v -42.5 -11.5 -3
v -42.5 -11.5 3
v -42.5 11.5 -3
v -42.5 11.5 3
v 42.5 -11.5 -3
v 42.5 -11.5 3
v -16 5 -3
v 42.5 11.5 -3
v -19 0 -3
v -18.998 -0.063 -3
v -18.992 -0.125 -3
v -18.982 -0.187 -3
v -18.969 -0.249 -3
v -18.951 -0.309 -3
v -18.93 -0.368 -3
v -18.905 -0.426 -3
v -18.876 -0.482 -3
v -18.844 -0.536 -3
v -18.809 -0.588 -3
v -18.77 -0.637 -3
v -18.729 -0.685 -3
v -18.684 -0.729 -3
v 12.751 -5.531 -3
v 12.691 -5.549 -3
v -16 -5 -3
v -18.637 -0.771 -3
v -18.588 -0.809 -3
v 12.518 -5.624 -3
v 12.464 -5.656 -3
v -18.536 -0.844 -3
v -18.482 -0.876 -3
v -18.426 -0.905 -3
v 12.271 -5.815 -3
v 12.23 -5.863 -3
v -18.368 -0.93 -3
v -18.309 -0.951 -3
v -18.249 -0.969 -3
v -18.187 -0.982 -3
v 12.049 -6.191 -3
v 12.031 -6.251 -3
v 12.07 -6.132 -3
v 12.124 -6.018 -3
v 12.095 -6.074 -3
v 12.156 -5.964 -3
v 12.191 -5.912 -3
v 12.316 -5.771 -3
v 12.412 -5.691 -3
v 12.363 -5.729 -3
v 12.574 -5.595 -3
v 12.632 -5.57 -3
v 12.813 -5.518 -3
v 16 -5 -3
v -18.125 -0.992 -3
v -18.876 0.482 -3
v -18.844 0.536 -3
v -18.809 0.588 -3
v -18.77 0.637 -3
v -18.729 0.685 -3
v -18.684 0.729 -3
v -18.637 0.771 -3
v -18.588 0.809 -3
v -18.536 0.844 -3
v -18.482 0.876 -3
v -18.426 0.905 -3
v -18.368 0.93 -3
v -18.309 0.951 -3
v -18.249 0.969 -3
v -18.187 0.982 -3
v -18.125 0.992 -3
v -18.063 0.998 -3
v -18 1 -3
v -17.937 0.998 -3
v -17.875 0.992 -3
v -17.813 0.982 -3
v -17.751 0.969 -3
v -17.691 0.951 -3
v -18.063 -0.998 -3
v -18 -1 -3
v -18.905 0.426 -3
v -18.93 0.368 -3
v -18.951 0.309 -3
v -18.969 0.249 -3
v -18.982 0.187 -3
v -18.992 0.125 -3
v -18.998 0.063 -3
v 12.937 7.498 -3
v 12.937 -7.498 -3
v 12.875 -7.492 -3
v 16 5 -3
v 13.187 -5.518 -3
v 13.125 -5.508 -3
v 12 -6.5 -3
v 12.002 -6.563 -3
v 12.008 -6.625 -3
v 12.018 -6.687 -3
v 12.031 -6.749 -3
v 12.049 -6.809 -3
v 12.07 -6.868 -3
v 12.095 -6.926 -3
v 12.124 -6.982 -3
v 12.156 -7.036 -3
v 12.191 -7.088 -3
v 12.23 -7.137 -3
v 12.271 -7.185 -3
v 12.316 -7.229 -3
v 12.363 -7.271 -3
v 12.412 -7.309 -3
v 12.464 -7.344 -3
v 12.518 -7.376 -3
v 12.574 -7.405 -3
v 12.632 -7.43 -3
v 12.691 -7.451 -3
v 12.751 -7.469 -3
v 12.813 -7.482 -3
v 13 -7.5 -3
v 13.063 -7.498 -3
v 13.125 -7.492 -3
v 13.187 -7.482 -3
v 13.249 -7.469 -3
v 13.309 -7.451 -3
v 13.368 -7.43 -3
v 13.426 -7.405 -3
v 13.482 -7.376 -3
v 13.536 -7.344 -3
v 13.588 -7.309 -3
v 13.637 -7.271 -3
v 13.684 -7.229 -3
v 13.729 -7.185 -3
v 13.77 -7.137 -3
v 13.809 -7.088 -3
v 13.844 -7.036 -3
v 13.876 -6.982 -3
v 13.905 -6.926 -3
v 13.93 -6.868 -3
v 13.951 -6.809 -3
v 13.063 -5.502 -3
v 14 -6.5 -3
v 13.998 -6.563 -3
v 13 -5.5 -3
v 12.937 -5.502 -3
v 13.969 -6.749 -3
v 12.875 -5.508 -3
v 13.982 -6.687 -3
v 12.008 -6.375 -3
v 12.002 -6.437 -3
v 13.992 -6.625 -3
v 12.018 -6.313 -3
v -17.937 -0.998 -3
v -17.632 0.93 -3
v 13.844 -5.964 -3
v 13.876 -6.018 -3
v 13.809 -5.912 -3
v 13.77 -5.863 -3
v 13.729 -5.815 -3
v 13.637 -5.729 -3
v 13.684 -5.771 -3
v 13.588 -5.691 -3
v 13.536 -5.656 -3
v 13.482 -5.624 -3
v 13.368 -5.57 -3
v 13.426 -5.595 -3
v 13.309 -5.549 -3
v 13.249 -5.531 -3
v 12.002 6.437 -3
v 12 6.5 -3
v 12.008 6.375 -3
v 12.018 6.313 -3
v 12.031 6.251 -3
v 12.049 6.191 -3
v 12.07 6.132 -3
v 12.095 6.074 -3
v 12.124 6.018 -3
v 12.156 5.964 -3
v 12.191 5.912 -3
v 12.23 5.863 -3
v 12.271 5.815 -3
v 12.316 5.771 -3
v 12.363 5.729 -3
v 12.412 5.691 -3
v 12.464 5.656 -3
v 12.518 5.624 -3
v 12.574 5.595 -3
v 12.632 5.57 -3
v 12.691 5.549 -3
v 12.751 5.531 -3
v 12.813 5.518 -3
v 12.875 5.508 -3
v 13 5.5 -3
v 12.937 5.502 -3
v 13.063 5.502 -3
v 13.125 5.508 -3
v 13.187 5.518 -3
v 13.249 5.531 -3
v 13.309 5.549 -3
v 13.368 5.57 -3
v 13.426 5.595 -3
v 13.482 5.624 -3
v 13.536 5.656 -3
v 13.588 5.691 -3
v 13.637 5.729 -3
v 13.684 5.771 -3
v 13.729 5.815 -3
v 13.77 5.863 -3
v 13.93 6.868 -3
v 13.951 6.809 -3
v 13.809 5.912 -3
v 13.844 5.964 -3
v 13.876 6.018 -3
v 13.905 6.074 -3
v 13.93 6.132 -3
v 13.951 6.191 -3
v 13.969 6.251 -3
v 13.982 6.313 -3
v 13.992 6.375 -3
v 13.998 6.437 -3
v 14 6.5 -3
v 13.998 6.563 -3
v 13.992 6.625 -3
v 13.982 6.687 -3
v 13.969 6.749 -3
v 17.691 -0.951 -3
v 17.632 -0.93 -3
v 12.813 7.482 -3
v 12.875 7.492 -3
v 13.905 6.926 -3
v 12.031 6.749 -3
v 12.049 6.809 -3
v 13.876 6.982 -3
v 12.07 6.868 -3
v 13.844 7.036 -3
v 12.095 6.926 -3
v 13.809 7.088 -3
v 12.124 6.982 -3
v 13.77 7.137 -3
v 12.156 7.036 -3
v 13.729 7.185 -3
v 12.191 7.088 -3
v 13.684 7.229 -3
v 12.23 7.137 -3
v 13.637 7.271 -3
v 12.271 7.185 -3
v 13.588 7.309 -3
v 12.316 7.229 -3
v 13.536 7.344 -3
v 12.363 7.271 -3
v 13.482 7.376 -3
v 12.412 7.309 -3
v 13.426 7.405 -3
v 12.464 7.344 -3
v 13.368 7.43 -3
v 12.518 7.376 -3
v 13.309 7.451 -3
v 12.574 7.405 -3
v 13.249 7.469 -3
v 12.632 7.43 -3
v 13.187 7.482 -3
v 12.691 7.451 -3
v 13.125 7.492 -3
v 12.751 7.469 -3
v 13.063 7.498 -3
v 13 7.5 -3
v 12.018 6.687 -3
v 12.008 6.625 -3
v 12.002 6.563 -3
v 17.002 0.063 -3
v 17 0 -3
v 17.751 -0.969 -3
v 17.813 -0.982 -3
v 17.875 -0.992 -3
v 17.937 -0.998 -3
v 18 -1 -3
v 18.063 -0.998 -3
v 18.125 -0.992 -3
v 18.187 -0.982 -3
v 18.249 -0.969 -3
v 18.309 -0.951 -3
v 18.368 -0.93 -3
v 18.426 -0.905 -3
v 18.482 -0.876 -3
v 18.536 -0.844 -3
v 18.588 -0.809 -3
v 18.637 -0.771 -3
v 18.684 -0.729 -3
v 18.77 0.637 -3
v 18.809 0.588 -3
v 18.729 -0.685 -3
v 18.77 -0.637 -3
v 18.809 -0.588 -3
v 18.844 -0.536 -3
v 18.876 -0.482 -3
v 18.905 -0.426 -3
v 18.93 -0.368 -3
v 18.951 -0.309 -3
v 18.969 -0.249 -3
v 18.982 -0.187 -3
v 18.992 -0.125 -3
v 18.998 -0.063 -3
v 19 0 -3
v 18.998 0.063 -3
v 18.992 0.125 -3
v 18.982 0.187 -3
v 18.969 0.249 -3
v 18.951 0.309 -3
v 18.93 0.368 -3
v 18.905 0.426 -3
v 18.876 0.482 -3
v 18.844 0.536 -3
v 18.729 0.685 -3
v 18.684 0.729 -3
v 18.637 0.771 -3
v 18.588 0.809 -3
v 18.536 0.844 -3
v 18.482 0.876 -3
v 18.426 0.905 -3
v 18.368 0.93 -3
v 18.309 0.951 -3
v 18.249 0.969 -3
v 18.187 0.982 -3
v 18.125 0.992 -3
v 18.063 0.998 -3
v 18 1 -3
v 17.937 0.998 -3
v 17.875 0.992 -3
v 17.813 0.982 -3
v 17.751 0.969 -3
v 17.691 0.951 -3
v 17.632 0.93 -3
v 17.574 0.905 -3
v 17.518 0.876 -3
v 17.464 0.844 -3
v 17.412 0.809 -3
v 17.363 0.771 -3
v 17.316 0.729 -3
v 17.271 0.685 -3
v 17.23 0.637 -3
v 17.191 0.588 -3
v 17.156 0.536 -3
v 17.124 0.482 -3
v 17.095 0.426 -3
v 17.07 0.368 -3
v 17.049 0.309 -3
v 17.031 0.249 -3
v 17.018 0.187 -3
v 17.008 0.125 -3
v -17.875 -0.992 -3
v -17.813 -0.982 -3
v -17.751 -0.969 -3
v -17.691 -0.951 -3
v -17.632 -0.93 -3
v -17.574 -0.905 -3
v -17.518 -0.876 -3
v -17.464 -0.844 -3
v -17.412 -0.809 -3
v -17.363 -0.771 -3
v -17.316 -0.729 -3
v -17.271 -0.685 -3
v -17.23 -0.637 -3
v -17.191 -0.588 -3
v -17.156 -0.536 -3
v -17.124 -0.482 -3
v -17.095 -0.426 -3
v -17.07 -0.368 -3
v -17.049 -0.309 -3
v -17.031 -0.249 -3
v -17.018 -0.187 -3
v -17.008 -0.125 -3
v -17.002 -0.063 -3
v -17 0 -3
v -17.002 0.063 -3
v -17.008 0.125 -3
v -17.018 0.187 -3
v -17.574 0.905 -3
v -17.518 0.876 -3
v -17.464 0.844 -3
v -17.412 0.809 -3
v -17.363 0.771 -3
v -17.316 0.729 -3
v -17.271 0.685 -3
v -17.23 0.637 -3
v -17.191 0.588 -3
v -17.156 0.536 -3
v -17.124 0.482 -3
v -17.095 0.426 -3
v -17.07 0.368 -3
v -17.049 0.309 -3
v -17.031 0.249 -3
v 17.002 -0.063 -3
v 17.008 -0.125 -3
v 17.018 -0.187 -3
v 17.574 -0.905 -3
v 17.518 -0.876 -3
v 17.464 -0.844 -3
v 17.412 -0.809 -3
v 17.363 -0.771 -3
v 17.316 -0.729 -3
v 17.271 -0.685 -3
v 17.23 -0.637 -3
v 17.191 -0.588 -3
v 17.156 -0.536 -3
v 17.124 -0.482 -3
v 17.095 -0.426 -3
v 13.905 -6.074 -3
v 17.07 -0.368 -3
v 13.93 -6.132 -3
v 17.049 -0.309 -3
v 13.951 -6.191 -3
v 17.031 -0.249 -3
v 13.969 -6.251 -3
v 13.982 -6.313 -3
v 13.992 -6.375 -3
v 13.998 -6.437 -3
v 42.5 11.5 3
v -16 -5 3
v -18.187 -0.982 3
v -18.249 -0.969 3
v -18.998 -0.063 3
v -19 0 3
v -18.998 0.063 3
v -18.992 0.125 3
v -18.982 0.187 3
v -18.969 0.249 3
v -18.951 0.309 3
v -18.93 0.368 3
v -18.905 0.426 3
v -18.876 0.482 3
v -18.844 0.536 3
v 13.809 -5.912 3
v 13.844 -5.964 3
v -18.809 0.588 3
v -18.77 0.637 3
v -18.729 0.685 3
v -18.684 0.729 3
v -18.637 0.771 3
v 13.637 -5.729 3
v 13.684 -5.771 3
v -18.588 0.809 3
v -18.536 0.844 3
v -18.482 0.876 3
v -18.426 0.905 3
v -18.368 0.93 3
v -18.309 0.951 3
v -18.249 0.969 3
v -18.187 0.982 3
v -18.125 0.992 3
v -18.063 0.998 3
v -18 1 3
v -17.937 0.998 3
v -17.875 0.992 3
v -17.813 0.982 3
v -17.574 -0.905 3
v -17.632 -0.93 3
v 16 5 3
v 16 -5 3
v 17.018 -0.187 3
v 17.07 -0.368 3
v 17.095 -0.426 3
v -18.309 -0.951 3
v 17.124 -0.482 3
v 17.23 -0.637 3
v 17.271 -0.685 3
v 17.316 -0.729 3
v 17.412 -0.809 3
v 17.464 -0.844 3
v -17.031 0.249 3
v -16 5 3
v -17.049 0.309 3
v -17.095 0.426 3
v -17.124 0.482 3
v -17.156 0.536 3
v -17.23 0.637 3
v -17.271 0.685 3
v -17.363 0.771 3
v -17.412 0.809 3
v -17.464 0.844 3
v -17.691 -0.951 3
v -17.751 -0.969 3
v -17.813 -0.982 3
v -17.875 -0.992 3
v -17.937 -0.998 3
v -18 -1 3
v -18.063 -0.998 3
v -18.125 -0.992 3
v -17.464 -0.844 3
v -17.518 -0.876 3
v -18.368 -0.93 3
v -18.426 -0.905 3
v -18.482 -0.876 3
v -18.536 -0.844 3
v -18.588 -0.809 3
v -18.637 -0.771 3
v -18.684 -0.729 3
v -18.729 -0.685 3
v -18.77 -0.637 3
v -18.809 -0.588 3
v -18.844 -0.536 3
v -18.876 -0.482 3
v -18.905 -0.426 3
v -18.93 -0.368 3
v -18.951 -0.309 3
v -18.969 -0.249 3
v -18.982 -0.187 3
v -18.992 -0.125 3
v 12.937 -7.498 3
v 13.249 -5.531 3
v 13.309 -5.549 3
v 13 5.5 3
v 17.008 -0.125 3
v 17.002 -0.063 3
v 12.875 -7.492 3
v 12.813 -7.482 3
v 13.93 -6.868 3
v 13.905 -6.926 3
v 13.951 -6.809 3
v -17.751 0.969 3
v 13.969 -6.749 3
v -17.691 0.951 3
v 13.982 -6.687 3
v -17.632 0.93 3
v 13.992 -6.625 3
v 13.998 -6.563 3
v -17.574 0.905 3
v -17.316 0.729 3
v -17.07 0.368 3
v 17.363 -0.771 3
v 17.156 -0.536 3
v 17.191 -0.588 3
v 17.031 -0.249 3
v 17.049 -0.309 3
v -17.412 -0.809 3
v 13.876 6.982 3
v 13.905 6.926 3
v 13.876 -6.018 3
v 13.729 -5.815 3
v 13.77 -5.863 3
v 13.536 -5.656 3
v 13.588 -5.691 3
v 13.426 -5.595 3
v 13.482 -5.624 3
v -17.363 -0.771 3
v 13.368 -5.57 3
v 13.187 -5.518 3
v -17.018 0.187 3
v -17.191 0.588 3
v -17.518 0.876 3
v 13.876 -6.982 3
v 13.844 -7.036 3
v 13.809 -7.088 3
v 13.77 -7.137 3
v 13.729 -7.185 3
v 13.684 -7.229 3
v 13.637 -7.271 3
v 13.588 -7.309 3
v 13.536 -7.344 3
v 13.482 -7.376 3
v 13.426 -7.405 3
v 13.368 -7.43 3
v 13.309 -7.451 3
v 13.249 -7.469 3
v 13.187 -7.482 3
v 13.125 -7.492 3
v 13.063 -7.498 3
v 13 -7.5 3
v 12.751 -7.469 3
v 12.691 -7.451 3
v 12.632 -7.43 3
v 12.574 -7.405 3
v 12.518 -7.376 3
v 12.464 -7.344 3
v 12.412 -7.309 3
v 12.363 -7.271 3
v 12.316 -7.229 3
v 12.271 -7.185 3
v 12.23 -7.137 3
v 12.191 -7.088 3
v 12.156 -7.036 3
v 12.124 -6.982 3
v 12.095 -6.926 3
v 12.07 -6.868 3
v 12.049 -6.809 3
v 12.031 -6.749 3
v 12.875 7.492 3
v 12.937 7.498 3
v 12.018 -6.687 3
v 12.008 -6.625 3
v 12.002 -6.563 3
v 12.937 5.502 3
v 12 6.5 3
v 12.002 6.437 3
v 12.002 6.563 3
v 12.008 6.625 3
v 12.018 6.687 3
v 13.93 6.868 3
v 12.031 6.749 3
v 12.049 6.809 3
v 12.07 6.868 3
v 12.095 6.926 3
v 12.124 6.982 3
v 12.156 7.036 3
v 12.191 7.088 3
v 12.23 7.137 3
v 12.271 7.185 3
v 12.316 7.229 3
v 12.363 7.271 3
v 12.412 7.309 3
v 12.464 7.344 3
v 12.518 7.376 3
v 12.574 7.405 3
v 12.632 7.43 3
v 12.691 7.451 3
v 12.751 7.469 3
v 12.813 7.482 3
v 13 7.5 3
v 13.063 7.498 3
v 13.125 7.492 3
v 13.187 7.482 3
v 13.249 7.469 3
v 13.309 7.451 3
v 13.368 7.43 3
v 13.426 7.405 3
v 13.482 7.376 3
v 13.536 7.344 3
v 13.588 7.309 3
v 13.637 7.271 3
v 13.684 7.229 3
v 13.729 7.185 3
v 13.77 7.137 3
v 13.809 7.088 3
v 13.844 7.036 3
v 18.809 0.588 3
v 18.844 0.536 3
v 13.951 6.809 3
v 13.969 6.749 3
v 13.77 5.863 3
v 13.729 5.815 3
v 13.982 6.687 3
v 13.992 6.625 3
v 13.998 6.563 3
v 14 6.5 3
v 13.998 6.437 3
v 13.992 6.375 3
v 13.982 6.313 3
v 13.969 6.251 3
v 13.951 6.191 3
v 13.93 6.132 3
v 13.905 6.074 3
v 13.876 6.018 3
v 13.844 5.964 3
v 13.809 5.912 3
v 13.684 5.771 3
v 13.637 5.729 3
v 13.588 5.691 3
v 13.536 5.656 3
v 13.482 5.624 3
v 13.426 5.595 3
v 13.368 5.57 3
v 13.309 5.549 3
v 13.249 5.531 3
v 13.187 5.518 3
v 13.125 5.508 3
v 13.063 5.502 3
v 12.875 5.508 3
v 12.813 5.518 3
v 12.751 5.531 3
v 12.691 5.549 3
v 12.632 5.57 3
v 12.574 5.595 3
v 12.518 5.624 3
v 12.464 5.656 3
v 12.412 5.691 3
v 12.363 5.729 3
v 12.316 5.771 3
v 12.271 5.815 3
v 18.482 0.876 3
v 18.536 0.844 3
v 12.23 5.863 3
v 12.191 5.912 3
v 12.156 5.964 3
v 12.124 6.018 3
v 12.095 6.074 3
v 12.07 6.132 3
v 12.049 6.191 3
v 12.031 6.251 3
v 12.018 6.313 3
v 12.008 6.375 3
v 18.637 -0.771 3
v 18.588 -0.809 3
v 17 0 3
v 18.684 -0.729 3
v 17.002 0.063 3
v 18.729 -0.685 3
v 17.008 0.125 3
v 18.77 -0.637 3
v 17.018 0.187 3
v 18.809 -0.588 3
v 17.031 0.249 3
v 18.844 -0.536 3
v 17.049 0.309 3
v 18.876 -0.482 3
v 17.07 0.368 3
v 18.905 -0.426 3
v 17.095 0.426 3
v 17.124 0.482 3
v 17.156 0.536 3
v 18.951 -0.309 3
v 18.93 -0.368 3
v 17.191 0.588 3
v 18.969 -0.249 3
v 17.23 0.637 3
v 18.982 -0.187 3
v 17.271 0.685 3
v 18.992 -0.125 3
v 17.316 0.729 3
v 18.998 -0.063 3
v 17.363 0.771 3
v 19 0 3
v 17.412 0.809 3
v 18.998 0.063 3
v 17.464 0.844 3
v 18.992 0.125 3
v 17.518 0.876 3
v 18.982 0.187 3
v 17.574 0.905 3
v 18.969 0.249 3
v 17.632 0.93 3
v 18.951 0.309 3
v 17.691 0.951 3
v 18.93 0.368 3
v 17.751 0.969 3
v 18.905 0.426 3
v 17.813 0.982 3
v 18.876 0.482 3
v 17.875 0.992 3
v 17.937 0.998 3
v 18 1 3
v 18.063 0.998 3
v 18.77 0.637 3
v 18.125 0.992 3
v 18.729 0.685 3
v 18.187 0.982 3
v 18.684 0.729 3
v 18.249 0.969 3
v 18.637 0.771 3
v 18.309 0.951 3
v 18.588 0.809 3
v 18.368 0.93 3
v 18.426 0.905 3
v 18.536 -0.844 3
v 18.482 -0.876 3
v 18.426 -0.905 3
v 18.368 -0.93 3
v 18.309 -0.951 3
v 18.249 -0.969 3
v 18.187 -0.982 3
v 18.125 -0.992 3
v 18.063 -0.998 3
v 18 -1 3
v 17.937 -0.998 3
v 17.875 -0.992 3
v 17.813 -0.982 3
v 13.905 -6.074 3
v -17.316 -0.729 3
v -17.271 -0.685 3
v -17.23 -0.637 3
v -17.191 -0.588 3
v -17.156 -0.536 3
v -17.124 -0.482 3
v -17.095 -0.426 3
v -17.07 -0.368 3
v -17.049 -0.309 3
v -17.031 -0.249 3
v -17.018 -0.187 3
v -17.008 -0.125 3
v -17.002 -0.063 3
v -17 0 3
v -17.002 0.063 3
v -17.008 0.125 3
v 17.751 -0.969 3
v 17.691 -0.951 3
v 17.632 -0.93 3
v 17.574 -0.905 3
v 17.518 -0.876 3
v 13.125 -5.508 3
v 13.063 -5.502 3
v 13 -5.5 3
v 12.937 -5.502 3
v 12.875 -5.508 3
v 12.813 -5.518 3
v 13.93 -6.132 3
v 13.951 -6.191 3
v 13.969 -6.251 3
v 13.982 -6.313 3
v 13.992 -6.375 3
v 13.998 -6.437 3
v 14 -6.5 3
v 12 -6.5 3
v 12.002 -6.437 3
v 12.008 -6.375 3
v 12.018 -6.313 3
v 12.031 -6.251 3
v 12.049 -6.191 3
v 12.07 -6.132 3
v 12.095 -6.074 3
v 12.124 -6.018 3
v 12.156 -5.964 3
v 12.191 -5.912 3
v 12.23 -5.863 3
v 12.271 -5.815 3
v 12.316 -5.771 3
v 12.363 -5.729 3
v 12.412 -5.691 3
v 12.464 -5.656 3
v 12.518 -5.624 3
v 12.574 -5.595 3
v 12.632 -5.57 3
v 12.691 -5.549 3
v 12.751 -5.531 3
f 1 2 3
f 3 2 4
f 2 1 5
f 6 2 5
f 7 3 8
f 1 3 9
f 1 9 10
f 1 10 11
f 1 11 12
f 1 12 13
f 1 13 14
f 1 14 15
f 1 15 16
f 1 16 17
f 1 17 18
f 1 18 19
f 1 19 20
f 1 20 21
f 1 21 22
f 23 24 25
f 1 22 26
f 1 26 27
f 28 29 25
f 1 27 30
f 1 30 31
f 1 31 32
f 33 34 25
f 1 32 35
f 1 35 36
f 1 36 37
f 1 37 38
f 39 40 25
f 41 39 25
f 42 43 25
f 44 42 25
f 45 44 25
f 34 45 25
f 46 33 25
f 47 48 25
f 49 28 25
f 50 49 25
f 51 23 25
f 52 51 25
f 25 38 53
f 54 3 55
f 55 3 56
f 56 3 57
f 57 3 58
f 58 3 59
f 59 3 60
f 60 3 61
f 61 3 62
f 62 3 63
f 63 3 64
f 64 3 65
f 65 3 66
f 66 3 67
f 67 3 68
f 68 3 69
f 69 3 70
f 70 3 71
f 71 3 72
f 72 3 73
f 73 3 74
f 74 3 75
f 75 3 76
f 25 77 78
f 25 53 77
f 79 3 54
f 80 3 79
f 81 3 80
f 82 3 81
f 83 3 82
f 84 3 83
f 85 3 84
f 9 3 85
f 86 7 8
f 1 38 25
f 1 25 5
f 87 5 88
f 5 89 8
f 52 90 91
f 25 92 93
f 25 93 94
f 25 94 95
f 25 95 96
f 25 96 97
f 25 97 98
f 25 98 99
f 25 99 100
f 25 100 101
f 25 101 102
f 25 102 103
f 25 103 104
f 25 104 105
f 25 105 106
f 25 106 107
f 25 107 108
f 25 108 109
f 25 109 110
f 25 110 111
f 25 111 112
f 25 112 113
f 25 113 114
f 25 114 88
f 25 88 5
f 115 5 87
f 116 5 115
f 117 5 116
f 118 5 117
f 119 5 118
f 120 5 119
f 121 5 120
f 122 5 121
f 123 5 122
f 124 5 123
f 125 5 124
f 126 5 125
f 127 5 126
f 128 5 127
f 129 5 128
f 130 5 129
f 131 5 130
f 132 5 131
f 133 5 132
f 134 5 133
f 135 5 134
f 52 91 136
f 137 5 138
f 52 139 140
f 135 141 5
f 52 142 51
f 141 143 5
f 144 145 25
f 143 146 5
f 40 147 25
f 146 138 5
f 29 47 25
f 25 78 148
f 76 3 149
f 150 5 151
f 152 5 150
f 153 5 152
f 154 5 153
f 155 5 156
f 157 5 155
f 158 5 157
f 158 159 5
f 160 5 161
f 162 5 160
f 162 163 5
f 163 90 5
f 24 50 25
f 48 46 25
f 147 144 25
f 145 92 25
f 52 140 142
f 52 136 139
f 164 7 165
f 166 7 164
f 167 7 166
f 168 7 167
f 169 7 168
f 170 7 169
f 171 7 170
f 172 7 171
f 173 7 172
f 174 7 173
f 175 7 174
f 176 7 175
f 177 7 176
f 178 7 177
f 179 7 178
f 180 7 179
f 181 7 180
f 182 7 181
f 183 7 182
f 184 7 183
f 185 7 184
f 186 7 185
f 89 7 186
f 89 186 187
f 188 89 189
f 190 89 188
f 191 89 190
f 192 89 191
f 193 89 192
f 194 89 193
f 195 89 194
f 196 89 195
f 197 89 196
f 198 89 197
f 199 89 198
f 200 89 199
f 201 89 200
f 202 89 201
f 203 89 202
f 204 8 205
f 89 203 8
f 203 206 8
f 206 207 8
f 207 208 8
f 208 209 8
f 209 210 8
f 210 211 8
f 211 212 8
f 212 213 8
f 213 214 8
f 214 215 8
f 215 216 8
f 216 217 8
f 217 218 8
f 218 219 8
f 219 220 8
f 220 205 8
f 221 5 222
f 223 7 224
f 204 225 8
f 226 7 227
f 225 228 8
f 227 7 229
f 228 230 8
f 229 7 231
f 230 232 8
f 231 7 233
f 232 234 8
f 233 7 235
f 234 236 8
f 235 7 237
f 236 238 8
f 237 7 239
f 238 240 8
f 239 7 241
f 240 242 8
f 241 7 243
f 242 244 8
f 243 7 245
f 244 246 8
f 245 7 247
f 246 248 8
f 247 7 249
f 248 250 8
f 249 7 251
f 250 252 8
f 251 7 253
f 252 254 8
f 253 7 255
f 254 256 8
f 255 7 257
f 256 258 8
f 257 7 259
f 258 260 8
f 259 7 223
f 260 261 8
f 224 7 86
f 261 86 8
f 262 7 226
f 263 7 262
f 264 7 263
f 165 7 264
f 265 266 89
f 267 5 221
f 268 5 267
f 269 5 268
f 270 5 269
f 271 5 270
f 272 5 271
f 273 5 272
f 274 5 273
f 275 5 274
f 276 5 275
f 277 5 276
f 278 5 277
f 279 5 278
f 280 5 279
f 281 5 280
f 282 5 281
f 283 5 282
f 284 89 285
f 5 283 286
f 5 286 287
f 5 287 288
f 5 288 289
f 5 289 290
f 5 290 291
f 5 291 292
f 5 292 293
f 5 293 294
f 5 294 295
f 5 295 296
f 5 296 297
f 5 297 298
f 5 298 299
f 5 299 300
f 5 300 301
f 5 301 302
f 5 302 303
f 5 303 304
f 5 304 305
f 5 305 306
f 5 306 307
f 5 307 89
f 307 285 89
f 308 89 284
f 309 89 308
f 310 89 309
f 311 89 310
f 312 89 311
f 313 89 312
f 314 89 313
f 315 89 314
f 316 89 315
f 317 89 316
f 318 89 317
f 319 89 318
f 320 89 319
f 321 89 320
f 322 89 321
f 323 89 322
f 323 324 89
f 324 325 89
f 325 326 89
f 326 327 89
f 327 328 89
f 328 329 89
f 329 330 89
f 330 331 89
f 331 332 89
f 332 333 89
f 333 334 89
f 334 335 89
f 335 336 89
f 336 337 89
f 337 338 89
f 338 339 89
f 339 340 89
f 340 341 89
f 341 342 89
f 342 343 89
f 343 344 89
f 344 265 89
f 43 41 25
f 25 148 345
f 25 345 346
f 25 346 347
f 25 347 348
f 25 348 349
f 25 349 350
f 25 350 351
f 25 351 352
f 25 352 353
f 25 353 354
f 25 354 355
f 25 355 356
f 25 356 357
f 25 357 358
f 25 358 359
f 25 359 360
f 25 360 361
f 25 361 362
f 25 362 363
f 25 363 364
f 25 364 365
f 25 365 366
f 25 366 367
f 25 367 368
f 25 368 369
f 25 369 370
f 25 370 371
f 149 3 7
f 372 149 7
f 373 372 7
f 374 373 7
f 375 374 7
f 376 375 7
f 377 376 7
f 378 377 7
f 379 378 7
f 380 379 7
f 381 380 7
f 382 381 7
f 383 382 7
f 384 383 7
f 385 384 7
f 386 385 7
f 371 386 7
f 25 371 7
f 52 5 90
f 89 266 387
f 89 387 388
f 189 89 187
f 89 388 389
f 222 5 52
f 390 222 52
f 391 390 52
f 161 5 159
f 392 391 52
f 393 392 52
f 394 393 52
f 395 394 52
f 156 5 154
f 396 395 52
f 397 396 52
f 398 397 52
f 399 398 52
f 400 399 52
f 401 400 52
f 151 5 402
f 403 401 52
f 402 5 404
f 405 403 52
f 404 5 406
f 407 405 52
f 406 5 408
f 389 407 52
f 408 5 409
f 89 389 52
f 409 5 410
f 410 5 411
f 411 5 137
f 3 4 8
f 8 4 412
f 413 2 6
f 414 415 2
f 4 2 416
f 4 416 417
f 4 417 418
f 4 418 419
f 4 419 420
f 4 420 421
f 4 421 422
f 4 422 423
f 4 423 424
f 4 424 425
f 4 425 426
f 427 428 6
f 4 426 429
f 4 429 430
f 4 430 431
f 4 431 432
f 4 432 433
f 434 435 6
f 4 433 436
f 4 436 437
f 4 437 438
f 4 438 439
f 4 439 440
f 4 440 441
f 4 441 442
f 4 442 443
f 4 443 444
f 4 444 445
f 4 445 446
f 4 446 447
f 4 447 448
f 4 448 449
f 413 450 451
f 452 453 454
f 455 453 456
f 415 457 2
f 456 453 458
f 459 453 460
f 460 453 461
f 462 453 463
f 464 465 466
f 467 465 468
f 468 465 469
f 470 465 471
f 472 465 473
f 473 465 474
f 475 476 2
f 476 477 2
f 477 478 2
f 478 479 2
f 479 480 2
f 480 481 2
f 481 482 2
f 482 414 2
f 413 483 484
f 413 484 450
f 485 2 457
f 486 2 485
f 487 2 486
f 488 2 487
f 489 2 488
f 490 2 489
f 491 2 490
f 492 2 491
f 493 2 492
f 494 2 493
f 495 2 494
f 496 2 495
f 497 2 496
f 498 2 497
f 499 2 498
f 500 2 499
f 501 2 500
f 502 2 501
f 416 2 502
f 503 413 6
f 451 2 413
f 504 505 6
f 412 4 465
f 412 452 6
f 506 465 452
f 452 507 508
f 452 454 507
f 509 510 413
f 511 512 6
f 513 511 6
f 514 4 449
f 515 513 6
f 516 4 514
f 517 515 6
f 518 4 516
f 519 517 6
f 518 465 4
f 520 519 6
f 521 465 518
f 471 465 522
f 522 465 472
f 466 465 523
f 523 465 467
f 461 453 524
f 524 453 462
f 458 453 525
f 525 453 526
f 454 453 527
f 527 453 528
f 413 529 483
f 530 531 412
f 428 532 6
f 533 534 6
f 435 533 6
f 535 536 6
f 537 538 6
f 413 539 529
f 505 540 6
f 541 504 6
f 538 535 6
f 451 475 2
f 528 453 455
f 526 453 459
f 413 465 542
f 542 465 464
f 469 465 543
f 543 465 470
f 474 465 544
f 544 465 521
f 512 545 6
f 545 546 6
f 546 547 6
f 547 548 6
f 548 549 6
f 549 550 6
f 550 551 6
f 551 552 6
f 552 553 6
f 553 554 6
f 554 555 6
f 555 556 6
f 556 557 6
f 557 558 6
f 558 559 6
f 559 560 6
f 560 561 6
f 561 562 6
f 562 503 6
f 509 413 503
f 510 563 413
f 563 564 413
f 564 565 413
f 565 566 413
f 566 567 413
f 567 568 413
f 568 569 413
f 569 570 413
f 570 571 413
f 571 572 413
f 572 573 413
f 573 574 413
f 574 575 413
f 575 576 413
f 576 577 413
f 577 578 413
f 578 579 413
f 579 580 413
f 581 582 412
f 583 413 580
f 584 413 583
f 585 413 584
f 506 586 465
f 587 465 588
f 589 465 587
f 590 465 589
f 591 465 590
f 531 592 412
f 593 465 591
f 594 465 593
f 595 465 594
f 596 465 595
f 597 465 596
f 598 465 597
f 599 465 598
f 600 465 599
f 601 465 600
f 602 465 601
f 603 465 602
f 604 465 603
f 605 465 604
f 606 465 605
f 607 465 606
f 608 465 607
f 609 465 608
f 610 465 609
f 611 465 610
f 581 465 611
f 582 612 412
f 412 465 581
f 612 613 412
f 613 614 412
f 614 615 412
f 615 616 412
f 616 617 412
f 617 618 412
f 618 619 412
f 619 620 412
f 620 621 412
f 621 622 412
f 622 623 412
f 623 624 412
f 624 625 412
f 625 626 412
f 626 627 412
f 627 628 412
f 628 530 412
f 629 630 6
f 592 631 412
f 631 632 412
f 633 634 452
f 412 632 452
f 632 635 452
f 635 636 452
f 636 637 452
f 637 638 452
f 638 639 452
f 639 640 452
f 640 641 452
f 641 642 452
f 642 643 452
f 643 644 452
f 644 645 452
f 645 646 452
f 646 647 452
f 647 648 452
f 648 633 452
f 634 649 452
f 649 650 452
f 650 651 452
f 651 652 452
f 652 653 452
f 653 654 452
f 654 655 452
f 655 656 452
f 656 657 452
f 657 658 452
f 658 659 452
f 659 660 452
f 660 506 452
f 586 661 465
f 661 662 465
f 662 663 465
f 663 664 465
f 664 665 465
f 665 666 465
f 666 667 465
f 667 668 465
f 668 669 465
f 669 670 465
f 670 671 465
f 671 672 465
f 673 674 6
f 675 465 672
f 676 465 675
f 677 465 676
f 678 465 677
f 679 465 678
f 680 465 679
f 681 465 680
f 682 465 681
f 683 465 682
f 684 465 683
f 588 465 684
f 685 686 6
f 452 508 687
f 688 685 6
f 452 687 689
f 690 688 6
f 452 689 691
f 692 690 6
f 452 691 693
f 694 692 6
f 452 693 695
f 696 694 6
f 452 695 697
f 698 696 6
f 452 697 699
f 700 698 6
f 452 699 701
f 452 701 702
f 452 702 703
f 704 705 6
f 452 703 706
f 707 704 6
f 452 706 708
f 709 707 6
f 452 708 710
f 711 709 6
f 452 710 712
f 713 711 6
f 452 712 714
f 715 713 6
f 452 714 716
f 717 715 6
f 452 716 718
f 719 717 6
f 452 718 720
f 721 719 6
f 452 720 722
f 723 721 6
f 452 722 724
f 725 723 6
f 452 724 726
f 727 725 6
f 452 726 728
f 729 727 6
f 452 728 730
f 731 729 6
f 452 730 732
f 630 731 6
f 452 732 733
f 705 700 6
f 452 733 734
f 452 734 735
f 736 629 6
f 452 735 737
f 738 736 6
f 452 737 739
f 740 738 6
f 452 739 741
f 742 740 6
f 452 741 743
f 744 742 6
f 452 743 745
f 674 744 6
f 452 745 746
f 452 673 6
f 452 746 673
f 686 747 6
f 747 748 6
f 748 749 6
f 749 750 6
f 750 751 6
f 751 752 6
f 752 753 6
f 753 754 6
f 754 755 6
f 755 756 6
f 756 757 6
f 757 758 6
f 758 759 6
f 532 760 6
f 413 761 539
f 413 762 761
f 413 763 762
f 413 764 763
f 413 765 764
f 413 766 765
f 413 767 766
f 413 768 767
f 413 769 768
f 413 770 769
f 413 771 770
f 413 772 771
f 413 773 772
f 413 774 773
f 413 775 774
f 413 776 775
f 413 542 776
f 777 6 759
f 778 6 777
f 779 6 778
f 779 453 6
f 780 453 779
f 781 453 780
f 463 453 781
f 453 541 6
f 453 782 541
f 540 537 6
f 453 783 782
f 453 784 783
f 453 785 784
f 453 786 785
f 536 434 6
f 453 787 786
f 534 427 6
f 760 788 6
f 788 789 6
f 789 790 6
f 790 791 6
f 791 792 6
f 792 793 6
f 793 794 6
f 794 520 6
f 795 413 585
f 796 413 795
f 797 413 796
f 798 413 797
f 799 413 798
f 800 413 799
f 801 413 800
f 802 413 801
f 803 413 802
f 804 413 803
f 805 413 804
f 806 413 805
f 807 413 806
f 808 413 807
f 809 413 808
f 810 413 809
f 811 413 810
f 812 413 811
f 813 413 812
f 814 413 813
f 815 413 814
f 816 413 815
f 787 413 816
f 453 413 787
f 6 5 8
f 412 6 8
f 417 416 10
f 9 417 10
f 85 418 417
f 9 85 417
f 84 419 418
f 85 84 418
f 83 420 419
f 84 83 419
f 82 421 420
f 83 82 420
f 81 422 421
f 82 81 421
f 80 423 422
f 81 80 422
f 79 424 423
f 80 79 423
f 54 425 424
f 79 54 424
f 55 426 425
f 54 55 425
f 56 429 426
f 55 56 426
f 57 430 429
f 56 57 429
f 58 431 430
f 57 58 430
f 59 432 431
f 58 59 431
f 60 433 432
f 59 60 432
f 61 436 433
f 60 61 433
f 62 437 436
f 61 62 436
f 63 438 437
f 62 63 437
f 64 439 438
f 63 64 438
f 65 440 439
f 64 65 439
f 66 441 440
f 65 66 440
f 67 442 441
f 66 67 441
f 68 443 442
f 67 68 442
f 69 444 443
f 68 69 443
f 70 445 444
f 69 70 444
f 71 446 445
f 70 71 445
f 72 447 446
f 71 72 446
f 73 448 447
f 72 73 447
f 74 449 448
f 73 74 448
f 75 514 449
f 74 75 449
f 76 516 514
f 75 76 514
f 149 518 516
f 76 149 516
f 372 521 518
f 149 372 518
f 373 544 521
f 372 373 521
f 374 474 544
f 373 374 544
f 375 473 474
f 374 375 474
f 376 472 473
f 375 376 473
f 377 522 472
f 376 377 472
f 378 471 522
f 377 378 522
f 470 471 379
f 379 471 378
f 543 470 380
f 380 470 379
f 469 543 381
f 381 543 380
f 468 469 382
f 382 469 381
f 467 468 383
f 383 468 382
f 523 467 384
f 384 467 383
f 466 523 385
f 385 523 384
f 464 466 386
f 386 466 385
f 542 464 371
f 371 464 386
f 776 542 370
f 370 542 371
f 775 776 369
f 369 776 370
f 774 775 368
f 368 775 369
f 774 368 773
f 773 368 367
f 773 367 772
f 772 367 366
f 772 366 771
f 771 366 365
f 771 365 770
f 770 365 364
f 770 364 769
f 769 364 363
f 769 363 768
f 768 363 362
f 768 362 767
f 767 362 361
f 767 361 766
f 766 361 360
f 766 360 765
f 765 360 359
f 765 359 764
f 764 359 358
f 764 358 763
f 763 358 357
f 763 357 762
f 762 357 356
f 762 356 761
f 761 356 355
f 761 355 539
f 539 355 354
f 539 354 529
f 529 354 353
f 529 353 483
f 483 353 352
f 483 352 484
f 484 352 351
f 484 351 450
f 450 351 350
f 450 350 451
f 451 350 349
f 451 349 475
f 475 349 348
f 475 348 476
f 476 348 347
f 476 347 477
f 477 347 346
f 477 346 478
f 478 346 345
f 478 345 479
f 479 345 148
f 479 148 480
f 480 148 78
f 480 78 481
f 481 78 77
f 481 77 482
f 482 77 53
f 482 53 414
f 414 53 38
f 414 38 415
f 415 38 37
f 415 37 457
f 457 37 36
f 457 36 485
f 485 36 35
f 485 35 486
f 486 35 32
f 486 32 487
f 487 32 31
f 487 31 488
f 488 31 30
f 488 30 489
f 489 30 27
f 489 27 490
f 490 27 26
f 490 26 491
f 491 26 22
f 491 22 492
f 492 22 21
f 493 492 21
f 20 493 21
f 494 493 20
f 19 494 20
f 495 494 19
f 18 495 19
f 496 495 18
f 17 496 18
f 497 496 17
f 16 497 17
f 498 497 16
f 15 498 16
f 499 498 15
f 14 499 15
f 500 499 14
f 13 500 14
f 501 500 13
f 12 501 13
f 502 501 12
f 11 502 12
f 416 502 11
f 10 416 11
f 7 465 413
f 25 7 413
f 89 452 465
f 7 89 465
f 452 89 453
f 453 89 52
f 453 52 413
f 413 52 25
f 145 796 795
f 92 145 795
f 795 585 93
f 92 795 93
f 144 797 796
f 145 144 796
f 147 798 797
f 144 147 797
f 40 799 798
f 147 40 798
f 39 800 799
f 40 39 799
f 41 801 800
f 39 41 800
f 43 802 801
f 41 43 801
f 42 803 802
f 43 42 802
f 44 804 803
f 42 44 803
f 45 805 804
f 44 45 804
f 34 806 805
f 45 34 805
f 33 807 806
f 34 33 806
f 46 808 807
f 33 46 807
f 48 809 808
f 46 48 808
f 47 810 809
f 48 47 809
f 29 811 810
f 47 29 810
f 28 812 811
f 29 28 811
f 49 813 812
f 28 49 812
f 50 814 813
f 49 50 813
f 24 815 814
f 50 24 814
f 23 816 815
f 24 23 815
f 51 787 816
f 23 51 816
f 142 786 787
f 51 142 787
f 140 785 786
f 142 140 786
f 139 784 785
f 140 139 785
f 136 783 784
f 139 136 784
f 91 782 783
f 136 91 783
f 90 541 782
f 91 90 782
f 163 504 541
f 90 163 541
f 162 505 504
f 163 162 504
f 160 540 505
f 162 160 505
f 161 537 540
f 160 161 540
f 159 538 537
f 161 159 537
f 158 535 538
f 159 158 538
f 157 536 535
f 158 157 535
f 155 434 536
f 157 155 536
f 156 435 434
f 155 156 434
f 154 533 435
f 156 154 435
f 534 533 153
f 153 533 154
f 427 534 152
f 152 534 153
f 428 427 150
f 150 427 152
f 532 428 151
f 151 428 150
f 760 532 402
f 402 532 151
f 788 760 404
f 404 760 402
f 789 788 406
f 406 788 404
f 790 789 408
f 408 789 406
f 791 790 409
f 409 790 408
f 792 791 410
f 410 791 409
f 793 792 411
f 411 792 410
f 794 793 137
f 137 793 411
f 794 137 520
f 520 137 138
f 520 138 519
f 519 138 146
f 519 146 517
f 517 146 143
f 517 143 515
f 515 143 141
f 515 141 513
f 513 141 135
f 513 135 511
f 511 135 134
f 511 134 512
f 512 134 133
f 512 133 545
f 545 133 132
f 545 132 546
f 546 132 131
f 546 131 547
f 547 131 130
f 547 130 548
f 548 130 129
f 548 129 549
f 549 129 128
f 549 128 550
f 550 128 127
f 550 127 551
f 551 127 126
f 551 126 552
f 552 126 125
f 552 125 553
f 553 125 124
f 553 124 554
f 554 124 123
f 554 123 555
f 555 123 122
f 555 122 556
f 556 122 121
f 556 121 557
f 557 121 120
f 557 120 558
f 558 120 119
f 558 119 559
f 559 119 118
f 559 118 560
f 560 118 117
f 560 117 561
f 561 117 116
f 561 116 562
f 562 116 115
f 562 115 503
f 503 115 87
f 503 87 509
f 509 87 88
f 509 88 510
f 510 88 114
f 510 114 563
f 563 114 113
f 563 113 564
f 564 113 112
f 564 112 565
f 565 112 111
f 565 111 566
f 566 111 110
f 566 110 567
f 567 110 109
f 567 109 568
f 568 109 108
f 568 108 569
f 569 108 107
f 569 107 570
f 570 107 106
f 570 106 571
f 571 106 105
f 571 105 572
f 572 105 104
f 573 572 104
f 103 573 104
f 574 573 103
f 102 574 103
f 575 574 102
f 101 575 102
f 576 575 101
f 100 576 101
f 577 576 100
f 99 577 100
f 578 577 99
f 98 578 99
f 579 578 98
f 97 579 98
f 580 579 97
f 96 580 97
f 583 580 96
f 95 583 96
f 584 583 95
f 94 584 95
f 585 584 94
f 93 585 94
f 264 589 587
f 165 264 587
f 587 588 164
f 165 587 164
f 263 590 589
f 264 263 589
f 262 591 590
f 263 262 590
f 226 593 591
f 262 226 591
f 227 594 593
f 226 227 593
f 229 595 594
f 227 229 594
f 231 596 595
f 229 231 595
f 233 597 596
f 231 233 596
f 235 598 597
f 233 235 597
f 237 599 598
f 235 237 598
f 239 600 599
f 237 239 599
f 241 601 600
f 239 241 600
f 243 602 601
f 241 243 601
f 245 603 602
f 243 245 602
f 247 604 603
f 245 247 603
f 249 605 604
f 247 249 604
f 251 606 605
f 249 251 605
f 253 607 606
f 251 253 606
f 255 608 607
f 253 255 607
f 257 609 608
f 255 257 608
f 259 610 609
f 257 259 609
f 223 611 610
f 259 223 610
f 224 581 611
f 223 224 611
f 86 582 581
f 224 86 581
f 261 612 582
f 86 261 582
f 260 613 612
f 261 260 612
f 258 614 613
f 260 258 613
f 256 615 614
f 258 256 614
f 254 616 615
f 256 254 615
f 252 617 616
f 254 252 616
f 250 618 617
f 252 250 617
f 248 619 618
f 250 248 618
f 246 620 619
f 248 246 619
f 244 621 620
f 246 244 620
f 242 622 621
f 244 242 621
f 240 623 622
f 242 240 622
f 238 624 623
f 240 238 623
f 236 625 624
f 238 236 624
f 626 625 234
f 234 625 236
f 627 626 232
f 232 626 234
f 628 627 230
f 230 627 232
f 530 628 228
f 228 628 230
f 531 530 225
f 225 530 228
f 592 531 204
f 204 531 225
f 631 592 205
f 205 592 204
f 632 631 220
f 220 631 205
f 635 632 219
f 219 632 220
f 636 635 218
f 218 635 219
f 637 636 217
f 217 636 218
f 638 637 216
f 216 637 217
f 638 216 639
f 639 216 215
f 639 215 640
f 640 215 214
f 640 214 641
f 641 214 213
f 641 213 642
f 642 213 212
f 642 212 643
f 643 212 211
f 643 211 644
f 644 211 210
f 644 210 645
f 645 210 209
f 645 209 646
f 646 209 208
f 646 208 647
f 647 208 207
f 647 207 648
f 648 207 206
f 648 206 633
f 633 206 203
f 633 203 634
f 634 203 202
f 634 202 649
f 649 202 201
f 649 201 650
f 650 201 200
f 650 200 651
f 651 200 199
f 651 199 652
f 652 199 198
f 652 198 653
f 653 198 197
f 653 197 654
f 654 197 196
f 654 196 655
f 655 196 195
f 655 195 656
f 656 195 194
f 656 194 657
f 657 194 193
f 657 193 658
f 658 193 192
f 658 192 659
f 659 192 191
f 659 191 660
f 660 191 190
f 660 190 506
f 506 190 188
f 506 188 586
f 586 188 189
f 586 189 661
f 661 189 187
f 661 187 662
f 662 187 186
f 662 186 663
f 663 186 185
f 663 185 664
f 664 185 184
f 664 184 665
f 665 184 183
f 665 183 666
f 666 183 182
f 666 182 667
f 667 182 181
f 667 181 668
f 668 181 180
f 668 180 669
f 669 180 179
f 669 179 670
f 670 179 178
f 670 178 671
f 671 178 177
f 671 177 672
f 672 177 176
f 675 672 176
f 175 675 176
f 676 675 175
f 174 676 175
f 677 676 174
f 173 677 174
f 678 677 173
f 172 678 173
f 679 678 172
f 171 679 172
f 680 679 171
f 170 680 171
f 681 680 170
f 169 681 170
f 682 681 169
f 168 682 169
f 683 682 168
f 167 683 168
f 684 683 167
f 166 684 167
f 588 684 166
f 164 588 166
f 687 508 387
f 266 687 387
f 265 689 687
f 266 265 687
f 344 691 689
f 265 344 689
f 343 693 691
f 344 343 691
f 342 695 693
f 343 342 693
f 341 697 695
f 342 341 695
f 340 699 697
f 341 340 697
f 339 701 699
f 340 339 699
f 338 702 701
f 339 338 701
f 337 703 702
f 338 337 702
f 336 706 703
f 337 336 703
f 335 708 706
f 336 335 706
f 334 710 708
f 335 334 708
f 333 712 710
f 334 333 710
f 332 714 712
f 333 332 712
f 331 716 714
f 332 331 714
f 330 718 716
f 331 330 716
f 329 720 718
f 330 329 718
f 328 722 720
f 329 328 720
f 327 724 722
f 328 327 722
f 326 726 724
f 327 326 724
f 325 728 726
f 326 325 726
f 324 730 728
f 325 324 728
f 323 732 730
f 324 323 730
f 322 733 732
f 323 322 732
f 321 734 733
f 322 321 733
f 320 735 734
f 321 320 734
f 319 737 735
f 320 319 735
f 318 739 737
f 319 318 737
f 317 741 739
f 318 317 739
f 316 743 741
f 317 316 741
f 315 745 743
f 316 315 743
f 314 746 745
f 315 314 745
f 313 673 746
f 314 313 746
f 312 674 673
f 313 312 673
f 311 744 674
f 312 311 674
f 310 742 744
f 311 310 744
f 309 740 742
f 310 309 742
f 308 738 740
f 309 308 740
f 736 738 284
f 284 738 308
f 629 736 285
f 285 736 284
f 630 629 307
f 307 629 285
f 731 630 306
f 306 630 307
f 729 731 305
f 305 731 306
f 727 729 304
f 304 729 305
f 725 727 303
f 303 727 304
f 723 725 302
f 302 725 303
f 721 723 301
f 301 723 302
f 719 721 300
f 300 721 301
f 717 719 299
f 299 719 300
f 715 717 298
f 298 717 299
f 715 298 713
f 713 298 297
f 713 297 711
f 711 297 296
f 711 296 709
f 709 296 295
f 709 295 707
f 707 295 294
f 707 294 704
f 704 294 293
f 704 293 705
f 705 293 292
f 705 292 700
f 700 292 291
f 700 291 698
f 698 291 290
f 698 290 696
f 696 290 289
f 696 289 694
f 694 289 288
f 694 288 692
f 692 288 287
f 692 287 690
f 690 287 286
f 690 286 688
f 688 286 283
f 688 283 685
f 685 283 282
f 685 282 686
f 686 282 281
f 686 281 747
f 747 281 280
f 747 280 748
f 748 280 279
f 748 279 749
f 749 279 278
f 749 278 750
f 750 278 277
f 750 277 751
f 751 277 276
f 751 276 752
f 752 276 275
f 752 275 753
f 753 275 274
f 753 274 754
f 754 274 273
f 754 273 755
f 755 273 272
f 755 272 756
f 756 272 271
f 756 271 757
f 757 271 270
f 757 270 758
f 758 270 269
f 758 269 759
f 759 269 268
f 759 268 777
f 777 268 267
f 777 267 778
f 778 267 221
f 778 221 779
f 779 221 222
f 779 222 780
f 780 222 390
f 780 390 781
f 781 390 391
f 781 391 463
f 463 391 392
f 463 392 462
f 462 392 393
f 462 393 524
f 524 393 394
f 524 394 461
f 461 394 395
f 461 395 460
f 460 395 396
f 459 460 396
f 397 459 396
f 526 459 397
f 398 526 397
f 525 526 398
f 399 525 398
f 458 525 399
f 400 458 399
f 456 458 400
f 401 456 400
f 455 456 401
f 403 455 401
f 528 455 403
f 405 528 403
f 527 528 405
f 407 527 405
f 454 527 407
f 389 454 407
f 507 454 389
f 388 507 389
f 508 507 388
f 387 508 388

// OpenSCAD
//Alignment of holes
hole_distance_x = 36;
hole_distance_y = 13;
hole_y_distance_x_from_one_end = 5;
hole_radius = 1;

block_width = 23;
block_depth = 85;
block_height = 6;

cylh = 4;
cylr = 3;//hole_radius*3;

module hole() {
	cylinder(r=hole_radius, h=block_height+cylh+2, center=true);
}

module reizer() {
	cylinder(r=cylr, h=cylh+block_height, center=true);
}

module block() {
	//cylinder();
	cube(size=[block_depth, block_width, block_height], center = true);
}

$fn=100;

//union() {
//	block();
//	translate([hole_distance_x/2,0,cylh/2]) reizer();
//	translate([-hole_distance_x/2,0,cylh/2]) reizer();
//	translate([hole_distance_x/2-hole_y_distance_x_from_one_end,hole_distance_y/2,cylh/2]) reizer();
//	translate([hole_distance_x/2-hole_y_distance_x_from_one_end,-hole_distance_y/2,cylh/2]) reizer();
//}

difference() {
	block();
	translate([hole_distance_x/2,0,cylh/2]) hole();
	translate([-hole_distance_x/2,0,cylh/2]) hole();
	translate([hole_distance_x/2-hole_y_distance_x_from_one_end,hole_distance_y/2,cylh/2]) hole();
	translate([hole_distance_x/2-hole_y_distance_x_from_one_end,-hole_distance_y/2,cylh/2]) hole();
	translate([0,0,0]) cube([32,10,10], center=true);
}
